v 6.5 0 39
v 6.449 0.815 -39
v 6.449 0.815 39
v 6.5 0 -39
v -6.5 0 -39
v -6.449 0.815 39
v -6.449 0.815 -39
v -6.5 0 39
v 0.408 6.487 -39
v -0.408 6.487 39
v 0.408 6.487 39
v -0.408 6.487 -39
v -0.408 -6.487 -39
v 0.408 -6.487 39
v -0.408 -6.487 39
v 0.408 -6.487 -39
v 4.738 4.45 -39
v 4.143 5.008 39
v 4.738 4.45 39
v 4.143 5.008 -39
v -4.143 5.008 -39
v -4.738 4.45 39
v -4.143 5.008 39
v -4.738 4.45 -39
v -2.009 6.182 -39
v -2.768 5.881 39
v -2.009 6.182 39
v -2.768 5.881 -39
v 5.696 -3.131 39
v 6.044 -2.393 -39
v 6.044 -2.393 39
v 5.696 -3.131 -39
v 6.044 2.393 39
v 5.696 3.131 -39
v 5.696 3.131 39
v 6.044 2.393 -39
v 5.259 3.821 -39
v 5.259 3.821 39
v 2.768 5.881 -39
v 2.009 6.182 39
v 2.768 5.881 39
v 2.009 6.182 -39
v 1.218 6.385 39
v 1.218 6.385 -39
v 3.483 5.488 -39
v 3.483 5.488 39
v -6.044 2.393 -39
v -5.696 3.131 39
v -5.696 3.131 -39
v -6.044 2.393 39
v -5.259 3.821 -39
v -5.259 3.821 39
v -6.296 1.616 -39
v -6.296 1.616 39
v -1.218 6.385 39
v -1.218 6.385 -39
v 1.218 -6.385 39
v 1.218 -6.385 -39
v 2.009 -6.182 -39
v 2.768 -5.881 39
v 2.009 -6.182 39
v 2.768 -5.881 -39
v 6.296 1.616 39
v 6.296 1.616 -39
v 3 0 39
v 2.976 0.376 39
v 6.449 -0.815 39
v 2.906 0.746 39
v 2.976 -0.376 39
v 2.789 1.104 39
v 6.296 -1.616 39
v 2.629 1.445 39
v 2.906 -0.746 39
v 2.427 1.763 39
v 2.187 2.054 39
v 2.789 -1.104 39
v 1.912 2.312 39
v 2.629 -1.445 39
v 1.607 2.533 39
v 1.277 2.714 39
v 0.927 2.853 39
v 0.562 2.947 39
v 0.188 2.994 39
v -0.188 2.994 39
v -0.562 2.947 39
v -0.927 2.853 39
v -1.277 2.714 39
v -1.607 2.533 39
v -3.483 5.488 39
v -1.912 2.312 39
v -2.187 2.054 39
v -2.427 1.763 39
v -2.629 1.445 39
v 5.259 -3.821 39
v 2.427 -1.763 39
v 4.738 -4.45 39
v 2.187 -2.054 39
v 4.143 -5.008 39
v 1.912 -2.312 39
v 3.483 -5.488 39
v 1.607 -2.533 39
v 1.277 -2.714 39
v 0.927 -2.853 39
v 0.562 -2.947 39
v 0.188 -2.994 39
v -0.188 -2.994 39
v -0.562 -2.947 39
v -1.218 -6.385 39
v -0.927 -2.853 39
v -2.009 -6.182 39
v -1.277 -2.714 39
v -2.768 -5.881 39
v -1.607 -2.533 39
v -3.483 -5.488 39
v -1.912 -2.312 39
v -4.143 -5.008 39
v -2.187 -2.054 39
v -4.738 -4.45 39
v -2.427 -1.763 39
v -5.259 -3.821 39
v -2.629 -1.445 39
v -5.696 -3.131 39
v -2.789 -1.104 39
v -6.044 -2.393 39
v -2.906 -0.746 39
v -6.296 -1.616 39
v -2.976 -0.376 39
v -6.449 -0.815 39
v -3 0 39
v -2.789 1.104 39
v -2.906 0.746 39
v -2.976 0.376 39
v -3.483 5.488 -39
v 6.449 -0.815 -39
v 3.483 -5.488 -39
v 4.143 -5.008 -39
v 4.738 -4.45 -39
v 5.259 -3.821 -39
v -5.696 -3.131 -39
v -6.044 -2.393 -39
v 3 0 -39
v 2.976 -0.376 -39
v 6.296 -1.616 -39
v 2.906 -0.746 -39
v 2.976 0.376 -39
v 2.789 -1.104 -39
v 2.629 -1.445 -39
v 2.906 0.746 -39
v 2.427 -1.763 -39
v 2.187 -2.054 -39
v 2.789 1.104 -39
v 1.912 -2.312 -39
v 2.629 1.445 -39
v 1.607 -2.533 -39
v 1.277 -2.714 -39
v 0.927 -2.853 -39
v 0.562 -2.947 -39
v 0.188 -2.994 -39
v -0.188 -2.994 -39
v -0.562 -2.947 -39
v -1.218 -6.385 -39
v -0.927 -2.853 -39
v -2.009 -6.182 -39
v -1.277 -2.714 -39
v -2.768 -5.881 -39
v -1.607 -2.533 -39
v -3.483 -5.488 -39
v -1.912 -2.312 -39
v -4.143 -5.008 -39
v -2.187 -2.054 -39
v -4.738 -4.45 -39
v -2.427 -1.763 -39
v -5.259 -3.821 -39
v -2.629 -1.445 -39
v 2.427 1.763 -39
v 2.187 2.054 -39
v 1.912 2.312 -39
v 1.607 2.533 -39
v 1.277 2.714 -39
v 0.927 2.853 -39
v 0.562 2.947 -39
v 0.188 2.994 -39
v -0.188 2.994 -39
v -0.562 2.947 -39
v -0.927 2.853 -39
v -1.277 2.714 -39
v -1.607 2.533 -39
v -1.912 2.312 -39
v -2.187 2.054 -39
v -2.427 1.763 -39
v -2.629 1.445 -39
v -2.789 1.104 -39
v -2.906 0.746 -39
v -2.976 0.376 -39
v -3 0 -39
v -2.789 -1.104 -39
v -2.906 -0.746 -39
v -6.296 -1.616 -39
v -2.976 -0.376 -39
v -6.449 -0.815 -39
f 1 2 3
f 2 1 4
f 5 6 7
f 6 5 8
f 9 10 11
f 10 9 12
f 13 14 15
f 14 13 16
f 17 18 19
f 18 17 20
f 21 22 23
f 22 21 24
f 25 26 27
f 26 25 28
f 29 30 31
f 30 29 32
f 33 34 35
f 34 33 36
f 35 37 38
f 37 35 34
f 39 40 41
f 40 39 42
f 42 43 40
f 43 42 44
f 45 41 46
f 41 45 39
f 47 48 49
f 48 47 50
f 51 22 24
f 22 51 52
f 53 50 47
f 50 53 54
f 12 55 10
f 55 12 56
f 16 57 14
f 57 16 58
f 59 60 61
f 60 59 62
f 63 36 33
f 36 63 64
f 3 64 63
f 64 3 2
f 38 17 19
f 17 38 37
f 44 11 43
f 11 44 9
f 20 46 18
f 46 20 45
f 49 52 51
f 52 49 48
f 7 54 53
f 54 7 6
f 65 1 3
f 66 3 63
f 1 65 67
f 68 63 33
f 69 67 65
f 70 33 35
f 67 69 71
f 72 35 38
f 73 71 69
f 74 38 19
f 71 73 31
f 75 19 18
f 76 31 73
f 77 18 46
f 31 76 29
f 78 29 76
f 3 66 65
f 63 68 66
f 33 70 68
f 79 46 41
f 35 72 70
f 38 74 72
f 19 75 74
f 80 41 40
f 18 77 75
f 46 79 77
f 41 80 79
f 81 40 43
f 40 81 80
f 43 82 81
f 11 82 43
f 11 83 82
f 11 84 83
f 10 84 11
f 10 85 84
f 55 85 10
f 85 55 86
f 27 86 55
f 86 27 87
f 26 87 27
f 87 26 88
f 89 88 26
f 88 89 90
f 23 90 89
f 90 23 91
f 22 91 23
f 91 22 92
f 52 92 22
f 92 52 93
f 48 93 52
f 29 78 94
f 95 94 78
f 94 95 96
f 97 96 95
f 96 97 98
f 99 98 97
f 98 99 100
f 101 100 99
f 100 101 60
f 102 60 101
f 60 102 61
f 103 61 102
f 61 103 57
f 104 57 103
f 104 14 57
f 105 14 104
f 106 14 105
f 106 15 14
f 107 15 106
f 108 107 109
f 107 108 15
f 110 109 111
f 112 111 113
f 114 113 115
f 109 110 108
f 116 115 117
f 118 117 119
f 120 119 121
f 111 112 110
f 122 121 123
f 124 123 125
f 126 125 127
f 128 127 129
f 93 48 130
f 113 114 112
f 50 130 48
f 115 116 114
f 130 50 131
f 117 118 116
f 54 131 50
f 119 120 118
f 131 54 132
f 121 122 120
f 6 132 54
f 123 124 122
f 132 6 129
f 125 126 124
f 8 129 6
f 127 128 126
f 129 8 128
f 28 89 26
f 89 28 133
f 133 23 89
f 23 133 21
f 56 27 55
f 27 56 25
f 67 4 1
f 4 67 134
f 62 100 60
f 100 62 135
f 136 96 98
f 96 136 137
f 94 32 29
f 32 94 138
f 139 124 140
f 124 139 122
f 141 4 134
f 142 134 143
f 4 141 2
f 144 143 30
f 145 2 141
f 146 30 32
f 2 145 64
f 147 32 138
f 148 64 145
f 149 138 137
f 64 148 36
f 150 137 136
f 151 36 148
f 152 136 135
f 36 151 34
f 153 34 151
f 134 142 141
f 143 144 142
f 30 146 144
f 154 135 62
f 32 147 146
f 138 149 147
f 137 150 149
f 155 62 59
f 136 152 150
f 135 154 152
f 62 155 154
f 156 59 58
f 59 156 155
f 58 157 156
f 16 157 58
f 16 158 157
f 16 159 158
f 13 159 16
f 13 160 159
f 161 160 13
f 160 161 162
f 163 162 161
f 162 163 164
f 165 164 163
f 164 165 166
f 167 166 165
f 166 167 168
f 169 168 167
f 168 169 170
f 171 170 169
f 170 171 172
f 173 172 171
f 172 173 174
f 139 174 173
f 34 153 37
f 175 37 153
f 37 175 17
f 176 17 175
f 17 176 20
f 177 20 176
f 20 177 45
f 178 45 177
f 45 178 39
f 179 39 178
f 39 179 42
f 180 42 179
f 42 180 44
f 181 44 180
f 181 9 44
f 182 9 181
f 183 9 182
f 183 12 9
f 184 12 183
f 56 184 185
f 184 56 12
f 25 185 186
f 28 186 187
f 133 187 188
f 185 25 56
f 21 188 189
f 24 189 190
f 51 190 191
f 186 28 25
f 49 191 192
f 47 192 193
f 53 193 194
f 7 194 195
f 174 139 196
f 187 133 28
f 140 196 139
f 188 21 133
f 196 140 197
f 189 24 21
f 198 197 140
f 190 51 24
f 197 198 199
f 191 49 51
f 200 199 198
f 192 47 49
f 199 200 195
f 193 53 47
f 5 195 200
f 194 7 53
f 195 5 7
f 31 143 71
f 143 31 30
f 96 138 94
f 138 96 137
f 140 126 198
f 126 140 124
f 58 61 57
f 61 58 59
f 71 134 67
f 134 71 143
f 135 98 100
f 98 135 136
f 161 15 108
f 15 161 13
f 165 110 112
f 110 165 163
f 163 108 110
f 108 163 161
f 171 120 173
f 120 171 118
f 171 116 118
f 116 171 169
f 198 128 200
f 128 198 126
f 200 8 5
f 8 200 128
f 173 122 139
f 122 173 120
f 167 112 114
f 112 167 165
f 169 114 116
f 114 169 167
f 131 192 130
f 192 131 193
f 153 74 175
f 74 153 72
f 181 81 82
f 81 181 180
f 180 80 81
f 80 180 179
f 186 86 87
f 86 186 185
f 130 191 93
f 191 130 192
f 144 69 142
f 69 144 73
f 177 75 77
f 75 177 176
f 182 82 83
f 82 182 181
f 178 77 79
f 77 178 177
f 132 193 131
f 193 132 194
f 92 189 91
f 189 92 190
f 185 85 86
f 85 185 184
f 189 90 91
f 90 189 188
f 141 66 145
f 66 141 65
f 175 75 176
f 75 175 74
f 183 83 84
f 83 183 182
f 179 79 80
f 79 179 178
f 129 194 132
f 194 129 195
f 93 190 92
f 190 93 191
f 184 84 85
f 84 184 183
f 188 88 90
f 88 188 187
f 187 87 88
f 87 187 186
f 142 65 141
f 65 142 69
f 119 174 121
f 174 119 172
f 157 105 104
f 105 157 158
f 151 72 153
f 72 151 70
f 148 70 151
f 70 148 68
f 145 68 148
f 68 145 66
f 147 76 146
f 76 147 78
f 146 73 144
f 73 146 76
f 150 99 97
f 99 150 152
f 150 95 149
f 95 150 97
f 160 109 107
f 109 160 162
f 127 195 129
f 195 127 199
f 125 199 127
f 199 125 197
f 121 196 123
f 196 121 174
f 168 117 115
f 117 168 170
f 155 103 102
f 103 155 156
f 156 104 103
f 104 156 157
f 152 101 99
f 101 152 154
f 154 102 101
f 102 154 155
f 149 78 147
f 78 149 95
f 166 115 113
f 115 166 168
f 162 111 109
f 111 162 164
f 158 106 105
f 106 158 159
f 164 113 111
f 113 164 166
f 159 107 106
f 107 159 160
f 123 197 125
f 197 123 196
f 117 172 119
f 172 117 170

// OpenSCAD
$fn = 50;


difference() {
	union() {
		translate(v = [0, 0, -39.0000000000]) {
			cylinder(h = 78, r = 6.5000000000);
		}
	}
	union() {
		translate(v = [0, 0, -100.0000000000]) {
			cylinder(h = 200, r = 3);
		}
	}
}
